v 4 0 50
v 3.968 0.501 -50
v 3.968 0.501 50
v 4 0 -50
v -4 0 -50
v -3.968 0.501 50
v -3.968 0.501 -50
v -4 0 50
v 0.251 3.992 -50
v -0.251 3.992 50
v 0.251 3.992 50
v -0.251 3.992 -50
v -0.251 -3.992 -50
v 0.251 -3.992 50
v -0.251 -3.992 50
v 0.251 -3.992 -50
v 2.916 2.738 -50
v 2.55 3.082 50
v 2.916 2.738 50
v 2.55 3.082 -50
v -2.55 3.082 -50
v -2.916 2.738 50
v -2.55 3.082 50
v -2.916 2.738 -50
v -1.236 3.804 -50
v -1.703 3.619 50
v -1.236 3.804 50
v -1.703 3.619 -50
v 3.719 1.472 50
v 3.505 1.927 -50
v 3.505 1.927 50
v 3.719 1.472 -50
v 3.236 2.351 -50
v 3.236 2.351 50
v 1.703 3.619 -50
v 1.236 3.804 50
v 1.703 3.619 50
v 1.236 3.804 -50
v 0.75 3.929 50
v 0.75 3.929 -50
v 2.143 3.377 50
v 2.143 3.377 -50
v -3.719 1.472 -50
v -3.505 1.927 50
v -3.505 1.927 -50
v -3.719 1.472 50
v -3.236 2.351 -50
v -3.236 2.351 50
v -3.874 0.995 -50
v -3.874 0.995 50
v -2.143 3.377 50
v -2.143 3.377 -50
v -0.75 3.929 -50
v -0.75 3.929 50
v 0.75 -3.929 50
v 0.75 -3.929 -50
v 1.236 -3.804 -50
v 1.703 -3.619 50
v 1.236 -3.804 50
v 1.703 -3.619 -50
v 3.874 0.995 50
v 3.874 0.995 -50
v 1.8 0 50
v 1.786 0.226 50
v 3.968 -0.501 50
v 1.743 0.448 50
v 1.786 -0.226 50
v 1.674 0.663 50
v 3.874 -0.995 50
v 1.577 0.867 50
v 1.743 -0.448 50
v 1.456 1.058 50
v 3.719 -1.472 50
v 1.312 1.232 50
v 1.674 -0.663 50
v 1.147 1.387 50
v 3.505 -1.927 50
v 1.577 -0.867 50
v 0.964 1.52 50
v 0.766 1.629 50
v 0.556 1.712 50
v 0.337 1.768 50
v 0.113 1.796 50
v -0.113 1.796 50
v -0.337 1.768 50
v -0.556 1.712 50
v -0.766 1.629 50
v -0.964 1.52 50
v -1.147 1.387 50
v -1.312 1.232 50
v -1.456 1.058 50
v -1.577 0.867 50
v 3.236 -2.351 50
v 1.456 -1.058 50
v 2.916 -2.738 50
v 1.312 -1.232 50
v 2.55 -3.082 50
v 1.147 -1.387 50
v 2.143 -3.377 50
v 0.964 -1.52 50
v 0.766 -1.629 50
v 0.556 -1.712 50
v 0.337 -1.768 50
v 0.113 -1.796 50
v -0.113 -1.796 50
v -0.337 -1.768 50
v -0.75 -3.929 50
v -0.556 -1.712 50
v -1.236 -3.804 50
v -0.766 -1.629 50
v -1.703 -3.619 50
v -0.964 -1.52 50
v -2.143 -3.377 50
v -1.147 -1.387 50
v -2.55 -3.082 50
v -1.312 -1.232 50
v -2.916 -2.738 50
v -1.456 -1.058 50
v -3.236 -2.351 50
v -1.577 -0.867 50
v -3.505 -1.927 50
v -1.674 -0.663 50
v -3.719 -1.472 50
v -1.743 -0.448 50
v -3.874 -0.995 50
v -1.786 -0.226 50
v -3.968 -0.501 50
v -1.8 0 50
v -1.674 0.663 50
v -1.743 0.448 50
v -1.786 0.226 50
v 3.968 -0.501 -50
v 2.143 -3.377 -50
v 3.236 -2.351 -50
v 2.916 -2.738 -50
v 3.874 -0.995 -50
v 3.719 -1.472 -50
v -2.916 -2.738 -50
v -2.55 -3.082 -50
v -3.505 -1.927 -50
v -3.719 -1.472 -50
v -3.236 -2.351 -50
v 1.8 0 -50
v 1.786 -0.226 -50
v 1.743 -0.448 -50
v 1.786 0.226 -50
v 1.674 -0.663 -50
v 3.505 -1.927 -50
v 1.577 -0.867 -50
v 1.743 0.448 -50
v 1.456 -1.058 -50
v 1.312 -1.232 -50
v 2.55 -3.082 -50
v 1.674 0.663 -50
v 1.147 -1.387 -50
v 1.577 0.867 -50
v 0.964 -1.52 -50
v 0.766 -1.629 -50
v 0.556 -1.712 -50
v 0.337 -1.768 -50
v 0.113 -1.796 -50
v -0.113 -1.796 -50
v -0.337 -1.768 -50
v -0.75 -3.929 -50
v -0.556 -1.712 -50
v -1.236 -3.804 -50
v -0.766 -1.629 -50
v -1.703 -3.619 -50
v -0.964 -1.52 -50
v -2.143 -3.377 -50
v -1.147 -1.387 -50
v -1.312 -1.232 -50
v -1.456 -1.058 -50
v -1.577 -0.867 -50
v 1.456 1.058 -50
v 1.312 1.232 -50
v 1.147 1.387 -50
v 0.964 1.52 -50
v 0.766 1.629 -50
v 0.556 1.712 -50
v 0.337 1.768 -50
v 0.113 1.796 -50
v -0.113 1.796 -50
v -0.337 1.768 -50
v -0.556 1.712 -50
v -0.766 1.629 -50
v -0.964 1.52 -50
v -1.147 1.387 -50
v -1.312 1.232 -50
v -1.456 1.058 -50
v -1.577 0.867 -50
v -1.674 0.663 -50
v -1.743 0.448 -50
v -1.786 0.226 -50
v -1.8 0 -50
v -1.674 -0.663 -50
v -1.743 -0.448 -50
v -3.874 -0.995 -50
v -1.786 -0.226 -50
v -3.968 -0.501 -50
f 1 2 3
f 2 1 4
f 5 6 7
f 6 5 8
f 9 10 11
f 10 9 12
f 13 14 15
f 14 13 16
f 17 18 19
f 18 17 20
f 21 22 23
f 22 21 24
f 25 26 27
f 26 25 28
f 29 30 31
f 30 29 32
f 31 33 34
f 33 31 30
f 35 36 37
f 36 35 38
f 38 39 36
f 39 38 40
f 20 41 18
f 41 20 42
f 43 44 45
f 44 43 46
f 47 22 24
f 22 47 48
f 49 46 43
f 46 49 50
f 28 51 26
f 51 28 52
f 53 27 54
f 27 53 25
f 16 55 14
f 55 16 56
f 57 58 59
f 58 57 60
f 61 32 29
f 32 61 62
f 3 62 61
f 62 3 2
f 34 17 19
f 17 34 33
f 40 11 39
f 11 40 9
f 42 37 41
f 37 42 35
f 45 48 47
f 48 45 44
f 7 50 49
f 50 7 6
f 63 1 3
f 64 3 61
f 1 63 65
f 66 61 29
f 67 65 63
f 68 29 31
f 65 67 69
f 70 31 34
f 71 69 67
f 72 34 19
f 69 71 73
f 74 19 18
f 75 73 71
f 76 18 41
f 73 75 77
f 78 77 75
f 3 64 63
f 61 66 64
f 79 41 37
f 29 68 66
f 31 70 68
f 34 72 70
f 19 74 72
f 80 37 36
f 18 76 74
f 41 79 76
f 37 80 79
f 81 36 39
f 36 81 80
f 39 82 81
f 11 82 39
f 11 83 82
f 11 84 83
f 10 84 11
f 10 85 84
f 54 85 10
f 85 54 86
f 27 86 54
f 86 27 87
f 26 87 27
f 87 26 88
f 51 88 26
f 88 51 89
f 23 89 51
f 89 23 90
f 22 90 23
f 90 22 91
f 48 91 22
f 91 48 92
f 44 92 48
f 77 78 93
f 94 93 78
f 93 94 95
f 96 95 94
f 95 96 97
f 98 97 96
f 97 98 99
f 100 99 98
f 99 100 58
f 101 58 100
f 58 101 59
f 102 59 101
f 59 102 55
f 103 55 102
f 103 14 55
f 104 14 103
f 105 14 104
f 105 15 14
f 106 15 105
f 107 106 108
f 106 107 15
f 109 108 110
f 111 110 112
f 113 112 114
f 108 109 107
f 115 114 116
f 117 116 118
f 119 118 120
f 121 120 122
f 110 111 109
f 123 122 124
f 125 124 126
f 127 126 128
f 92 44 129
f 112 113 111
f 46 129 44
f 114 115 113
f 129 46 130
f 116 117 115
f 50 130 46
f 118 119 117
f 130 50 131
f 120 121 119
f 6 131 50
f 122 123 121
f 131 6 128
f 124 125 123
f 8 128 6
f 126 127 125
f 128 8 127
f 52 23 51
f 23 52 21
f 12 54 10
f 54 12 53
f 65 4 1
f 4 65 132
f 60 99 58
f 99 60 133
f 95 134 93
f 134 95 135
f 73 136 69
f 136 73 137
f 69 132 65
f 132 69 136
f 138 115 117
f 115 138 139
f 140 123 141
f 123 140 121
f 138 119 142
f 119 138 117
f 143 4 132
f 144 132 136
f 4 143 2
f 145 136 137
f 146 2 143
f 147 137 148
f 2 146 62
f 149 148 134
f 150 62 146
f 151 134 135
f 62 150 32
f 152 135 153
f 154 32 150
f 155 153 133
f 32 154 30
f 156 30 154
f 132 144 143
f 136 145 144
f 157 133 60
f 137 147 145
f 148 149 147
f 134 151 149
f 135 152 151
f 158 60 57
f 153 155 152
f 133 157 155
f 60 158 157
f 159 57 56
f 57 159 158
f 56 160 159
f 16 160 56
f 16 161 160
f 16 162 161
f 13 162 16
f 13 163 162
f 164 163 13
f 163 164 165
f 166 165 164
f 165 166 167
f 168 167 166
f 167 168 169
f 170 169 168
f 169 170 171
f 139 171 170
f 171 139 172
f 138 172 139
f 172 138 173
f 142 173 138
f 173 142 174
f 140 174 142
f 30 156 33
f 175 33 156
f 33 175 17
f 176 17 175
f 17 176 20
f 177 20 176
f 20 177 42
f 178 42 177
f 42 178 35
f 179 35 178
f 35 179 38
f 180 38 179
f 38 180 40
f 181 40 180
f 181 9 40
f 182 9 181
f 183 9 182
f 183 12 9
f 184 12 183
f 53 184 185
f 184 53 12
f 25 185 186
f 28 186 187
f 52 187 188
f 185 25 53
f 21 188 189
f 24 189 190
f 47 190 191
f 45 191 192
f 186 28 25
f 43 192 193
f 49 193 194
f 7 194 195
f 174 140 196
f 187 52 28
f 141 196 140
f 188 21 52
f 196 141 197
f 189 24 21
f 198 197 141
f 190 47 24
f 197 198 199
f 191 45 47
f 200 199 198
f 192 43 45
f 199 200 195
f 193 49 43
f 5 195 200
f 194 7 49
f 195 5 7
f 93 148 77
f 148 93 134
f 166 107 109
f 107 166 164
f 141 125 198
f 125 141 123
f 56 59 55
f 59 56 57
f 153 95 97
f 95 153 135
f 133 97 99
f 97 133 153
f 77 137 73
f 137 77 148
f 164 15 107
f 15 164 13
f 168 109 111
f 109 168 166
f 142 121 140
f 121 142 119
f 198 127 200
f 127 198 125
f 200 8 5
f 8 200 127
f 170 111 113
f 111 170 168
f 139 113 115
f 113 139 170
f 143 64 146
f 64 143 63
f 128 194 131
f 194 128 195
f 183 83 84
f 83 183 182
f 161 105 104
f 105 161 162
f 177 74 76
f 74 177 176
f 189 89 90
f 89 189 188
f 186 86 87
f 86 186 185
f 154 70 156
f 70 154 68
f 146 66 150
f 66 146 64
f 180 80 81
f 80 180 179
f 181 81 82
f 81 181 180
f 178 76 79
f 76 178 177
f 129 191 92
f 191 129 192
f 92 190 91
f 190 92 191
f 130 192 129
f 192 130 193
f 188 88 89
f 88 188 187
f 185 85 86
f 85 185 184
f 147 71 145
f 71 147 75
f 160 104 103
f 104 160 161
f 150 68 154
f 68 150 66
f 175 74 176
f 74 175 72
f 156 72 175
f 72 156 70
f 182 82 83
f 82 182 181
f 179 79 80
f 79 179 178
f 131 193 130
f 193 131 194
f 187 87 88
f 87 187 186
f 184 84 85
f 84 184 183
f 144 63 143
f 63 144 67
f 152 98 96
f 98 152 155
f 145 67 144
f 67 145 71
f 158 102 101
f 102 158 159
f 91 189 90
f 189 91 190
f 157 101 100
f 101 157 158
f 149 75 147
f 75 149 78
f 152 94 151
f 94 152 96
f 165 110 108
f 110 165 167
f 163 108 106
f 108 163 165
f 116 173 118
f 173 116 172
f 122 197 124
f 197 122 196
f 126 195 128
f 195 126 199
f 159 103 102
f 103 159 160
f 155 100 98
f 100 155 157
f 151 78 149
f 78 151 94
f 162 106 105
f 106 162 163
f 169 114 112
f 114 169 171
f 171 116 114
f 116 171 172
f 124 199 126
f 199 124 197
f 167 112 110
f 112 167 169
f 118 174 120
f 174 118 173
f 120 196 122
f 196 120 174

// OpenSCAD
$fn = 50;


difference() {
	union() {
		translate(v = [0, 0, -50.0000000000]) {
			cylinder(h = 100, r = 4.0000000000);
		}
	}
	union() {
		translate(v = [0, 0, -100.0000000000]) {
			cylinder(h = 200, r = 1.8000000000);
		}
	}
}
